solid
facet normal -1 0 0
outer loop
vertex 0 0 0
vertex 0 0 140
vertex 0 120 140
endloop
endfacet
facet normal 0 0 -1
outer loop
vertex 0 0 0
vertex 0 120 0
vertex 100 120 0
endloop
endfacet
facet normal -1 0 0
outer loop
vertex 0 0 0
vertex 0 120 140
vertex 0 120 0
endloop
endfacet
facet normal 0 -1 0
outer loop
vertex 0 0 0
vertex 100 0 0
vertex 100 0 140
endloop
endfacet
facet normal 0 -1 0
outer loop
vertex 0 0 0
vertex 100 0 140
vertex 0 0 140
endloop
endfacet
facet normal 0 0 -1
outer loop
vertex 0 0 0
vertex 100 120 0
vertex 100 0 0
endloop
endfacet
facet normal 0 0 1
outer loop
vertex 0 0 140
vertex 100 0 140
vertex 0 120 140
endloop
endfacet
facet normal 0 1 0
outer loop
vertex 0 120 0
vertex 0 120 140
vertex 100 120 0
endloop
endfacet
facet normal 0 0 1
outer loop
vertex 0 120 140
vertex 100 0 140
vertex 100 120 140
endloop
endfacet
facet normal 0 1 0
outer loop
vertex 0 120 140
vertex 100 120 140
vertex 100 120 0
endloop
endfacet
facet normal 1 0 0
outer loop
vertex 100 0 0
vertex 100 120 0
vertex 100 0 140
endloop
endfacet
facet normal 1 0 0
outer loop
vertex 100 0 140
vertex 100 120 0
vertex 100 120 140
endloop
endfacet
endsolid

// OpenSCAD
// Start: lazy_union
default_5_default_5();
// End: lazy_union

// Modules.

// 'PartMaterial undef-default - default 5.0'
module default_5_default_5() {
  // 'None : _combine_solids_and_holes'
  union() {
    // 'default : _combine_solids_and_holes'
    union() {
      // 'default'
      cube(size=[100.0, 120.0, 140.0]);
    }
  }
} // end module default_5_default_5
